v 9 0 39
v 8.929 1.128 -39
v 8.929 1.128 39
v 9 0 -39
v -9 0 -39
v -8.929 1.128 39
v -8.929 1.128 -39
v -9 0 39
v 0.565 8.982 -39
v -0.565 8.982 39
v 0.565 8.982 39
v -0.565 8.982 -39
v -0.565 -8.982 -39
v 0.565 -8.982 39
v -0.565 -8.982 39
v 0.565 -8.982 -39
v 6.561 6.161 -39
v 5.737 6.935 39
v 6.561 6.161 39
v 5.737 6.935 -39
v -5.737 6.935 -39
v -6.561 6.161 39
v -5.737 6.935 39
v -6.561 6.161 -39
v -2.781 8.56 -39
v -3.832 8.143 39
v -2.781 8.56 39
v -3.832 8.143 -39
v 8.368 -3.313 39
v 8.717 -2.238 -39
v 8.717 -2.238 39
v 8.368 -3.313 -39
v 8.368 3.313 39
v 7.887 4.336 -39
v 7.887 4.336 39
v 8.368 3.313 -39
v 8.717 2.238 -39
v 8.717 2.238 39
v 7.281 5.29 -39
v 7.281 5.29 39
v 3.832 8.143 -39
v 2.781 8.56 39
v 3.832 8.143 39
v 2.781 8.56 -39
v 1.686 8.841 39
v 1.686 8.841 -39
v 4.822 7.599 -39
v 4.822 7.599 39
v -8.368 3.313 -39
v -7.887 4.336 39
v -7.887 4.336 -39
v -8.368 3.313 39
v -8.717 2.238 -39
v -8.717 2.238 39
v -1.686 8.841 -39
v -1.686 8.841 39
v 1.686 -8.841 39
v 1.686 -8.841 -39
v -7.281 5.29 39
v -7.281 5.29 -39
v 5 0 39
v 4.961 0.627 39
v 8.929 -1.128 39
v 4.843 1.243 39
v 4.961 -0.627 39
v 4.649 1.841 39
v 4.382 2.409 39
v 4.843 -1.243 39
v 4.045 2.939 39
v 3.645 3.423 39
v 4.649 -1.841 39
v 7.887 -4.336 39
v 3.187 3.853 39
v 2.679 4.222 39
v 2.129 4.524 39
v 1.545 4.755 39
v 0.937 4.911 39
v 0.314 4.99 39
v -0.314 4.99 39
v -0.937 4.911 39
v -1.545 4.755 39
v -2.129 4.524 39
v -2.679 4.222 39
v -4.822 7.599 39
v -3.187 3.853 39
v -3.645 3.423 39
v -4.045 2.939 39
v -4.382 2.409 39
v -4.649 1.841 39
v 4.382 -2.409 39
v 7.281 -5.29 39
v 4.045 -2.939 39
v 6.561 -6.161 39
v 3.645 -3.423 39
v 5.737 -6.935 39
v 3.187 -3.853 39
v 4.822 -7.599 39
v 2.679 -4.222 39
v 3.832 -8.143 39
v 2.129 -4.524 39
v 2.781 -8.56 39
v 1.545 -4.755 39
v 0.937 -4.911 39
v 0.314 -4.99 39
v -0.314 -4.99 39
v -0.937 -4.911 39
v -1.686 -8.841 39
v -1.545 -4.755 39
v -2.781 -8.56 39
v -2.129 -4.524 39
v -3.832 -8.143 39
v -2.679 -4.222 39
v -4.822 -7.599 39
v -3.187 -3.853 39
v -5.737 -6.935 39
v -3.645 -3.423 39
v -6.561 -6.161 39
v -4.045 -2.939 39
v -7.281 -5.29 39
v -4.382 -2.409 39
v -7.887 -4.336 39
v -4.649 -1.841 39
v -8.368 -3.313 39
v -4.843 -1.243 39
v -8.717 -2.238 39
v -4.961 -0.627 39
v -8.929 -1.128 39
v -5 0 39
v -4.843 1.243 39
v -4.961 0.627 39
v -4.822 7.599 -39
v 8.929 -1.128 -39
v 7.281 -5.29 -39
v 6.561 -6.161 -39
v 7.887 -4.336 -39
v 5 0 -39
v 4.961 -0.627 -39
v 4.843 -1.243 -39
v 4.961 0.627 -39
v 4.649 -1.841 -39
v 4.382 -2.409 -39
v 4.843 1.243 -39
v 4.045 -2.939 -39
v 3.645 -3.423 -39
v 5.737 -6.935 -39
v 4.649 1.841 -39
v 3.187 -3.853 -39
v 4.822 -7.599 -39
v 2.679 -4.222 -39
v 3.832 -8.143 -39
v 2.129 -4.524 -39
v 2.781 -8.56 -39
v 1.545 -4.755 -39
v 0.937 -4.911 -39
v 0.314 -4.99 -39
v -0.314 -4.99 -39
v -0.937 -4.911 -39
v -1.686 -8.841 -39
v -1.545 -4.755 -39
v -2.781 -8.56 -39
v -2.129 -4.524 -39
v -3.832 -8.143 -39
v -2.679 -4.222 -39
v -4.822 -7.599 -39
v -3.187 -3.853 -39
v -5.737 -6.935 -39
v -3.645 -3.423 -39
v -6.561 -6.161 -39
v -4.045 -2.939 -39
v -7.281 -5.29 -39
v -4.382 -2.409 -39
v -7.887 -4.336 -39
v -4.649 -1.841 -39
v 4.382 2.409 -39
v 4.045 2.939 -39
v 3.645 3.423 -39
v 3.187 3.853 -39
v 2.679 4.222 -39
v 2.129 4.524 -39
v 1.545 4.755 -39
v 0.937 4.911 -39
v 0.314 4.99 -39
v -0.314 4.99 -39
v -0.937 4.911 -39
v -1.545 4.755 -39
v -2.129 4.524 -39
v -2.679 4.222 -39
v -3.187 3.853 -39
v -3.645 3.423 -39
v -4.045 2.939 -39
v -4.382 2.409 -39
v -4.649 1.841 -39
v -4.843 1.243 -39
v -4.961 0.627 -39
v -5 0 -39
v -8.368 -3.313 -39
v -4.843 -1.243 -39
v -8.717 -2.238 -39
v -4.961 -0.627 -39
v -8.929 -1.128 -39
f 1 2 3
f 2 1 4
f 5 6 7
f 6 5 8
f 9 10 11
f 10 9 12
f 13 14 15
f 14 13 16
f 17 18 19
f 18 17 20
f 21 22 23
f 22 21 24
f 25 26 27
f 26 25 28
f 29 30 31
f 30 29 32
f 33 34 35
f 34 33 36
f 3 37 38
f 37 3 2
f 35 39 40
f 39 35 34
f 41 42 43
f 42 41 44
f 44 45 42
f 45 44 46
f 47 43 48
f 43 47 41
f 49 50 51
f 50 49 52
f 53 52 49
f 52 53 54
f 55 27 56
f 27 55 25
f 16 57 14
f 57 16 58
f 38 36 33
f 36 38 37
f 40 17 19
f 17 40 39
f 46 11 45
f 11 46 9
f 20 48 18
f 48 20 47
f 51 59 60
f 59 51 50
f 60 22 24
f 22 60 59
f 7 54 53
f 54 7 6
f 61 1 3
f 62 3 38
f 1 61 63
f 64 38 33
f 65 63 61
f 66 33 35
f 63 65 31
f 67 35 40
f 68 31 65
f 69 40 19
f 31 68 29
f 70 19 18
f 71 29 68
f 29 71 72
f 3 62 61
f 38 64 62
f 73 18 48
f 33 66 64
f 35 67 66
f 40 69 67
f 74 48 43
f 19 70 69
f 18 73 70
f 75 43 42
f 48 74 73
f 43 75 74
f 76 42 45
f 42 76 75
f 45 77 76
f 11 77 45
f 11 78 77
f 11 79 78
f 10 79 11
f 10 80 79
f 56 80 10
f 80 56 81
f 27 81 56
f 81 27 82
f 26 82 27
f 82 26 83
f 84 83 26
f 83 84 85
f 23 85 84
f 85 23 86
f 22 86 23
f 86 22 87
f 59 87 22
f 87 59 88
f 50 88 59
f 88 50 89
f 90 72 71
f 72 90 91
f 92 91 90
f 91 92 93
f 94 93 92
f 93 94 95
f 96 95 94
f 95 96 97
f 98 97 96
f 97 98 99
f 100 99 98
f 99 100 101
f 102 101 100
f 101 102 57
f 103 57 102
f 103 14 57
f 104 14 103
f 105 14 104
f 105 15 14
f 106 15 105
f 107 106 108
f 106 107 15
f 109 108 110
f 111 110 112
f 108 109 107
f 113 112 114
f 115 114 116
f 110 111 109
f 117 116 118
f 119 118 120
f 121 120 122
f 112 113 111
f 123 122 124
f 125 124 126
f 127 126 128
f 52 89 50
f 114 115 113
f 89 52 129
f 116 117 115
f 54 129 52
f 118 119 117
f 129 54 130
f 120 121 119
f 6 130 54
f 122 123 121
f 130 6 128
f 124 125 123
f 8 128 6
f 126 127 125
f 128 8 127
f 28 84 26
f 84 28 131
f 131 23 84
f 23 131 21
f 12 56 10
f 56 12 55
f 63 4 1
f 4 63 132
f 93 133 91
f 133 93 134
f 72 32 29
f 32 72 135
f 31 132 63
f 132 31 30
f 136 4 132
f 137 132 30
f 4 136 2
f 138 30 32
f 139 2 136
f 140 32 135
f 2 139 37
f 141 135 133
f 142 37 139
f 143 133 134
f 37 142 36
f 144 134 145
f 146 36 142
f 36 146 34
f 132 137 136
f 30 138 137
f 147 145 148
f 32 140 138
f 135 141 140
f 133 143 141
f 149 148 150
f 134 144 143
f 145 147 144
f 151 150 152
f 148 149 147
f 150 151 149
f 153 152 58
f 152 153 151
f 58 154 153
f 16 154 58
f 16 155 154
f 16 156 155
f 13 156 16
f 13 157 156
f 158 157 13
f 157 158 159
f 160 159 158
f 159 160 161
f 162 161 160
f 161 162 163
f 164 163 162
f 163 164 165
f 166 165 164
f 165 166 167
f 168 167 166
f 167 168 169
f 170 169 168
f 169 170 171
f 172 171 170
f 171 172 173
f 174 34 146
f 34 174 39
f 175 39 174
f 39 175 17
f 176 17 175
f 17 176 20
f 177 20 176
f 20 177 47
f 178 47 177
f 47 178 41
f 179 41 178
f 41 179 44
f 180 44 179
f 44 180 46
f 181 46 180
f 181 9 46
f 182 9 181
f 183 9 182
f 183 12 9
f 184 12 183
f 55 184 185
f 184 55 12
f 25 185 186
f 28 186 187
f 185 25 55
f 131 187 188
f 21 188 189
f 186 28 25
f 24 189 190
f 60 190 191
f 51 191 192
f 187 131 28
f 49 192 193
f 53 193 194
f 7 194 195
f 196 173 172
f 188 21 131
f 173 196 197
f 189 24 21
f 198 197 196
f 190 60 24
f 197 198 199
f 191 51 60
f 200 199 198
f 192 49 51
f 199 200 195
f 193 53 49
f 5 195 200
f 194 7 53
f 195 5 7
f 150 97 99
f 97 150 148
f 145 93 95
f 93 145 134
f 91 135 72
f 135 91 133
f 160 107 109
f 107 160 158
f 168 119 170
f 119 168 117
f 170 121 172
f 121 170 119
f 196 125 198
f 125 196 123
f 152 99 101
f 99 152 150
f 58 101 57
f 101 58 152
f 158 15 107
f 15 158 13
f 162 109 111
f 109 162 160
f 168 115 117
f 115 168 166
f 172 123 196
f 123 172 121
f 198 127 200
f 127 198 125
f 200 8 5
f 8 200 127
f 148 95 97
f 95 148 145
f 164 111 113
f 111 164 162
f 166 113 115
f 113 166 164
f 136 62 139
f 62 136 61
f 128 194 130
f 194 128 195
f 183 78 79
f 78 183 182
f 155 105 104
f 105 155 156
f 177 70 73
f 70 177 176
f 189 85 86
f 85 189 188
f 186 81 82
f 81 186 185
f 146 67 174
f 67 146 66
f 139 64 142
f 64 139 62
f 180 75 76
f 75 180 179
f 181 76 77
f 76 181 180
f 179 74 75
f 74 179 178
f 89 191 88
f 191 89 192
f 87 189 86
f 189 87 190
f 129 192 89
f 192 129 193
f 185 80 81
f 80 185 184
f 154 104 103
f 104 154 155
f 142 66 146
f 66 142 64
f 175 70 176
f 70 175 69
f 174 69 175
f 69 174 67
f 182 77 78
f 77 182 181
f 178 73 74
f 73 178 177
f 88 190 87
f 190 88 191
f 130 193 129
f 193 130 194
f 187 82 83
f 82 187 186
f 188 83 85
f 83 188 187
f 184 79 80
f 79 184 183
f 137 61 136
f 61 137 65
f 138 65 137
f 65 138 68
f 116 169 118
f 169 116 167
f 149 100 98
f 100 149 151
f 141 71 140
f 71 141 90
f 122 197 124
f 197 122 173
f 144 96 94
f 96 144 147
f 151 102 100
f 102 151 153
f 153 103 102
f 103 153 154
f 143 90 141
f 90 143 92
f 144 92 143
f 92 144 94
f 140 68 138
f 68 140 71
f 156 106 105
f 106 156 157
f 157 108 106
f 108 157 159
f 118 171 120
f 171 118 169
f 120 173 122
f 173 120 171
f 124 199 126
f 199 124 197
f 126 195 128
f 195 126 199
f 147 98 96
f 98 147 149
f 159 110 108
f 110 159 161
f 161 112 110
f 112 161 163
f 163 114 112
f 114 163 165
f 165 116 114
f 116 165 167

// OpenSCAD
$fn = 50;


difference() {
	union() {
		translate(v = [0, 0, -39.0000000000]) {
			cylinder(h = 78, r = 9.0000000000);
		}
	}
	union() {
		translate(v = [0, 0, -100.0000000000]) {
			cylinder(h = 200, r = 5.0000000000);
		}
	}
}
